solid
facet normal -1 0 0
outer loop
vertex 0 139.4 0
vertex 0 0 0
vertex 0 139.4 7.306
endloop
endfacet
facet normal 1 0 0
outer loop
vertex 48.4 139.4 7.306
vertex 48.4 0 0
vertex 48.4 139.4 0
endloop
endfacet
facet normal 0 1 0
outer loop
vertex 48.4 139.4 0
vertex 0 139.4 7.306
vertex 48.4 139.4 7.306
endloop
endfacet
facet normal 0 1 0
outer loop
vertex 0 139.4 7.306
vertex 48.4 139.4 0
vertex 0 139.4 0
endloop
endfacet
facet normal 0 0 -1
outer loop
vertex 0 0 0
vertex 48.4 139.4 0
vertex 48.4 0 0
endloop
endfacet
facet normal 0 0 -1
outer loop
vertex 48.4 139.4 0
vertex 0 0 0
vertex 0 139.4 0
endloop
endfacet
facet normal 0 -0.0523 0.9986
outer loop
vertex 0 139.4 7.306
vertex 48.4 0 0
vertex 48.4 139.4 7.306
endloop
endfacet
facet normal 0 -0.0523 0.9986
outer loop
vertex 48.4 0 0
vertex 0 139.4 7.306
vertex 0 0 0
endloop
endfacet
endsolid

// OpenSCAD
thickness = 3;
toleranceOfBox=0.6;
tolerance=1;
width = 56-toleranceOfBox-thickness*2-tolerance;
height = 53-toleranceOfBox-thickness*2;
depth = 150-3-toleranceOfBox-thickness*2-tolerance;
angle=3;
difference(){
  cube([width, depth, height]);
  rotate([angle, 0, 0])cube([width, depth+100, height]);
}
echo(depth*tan(angle));
